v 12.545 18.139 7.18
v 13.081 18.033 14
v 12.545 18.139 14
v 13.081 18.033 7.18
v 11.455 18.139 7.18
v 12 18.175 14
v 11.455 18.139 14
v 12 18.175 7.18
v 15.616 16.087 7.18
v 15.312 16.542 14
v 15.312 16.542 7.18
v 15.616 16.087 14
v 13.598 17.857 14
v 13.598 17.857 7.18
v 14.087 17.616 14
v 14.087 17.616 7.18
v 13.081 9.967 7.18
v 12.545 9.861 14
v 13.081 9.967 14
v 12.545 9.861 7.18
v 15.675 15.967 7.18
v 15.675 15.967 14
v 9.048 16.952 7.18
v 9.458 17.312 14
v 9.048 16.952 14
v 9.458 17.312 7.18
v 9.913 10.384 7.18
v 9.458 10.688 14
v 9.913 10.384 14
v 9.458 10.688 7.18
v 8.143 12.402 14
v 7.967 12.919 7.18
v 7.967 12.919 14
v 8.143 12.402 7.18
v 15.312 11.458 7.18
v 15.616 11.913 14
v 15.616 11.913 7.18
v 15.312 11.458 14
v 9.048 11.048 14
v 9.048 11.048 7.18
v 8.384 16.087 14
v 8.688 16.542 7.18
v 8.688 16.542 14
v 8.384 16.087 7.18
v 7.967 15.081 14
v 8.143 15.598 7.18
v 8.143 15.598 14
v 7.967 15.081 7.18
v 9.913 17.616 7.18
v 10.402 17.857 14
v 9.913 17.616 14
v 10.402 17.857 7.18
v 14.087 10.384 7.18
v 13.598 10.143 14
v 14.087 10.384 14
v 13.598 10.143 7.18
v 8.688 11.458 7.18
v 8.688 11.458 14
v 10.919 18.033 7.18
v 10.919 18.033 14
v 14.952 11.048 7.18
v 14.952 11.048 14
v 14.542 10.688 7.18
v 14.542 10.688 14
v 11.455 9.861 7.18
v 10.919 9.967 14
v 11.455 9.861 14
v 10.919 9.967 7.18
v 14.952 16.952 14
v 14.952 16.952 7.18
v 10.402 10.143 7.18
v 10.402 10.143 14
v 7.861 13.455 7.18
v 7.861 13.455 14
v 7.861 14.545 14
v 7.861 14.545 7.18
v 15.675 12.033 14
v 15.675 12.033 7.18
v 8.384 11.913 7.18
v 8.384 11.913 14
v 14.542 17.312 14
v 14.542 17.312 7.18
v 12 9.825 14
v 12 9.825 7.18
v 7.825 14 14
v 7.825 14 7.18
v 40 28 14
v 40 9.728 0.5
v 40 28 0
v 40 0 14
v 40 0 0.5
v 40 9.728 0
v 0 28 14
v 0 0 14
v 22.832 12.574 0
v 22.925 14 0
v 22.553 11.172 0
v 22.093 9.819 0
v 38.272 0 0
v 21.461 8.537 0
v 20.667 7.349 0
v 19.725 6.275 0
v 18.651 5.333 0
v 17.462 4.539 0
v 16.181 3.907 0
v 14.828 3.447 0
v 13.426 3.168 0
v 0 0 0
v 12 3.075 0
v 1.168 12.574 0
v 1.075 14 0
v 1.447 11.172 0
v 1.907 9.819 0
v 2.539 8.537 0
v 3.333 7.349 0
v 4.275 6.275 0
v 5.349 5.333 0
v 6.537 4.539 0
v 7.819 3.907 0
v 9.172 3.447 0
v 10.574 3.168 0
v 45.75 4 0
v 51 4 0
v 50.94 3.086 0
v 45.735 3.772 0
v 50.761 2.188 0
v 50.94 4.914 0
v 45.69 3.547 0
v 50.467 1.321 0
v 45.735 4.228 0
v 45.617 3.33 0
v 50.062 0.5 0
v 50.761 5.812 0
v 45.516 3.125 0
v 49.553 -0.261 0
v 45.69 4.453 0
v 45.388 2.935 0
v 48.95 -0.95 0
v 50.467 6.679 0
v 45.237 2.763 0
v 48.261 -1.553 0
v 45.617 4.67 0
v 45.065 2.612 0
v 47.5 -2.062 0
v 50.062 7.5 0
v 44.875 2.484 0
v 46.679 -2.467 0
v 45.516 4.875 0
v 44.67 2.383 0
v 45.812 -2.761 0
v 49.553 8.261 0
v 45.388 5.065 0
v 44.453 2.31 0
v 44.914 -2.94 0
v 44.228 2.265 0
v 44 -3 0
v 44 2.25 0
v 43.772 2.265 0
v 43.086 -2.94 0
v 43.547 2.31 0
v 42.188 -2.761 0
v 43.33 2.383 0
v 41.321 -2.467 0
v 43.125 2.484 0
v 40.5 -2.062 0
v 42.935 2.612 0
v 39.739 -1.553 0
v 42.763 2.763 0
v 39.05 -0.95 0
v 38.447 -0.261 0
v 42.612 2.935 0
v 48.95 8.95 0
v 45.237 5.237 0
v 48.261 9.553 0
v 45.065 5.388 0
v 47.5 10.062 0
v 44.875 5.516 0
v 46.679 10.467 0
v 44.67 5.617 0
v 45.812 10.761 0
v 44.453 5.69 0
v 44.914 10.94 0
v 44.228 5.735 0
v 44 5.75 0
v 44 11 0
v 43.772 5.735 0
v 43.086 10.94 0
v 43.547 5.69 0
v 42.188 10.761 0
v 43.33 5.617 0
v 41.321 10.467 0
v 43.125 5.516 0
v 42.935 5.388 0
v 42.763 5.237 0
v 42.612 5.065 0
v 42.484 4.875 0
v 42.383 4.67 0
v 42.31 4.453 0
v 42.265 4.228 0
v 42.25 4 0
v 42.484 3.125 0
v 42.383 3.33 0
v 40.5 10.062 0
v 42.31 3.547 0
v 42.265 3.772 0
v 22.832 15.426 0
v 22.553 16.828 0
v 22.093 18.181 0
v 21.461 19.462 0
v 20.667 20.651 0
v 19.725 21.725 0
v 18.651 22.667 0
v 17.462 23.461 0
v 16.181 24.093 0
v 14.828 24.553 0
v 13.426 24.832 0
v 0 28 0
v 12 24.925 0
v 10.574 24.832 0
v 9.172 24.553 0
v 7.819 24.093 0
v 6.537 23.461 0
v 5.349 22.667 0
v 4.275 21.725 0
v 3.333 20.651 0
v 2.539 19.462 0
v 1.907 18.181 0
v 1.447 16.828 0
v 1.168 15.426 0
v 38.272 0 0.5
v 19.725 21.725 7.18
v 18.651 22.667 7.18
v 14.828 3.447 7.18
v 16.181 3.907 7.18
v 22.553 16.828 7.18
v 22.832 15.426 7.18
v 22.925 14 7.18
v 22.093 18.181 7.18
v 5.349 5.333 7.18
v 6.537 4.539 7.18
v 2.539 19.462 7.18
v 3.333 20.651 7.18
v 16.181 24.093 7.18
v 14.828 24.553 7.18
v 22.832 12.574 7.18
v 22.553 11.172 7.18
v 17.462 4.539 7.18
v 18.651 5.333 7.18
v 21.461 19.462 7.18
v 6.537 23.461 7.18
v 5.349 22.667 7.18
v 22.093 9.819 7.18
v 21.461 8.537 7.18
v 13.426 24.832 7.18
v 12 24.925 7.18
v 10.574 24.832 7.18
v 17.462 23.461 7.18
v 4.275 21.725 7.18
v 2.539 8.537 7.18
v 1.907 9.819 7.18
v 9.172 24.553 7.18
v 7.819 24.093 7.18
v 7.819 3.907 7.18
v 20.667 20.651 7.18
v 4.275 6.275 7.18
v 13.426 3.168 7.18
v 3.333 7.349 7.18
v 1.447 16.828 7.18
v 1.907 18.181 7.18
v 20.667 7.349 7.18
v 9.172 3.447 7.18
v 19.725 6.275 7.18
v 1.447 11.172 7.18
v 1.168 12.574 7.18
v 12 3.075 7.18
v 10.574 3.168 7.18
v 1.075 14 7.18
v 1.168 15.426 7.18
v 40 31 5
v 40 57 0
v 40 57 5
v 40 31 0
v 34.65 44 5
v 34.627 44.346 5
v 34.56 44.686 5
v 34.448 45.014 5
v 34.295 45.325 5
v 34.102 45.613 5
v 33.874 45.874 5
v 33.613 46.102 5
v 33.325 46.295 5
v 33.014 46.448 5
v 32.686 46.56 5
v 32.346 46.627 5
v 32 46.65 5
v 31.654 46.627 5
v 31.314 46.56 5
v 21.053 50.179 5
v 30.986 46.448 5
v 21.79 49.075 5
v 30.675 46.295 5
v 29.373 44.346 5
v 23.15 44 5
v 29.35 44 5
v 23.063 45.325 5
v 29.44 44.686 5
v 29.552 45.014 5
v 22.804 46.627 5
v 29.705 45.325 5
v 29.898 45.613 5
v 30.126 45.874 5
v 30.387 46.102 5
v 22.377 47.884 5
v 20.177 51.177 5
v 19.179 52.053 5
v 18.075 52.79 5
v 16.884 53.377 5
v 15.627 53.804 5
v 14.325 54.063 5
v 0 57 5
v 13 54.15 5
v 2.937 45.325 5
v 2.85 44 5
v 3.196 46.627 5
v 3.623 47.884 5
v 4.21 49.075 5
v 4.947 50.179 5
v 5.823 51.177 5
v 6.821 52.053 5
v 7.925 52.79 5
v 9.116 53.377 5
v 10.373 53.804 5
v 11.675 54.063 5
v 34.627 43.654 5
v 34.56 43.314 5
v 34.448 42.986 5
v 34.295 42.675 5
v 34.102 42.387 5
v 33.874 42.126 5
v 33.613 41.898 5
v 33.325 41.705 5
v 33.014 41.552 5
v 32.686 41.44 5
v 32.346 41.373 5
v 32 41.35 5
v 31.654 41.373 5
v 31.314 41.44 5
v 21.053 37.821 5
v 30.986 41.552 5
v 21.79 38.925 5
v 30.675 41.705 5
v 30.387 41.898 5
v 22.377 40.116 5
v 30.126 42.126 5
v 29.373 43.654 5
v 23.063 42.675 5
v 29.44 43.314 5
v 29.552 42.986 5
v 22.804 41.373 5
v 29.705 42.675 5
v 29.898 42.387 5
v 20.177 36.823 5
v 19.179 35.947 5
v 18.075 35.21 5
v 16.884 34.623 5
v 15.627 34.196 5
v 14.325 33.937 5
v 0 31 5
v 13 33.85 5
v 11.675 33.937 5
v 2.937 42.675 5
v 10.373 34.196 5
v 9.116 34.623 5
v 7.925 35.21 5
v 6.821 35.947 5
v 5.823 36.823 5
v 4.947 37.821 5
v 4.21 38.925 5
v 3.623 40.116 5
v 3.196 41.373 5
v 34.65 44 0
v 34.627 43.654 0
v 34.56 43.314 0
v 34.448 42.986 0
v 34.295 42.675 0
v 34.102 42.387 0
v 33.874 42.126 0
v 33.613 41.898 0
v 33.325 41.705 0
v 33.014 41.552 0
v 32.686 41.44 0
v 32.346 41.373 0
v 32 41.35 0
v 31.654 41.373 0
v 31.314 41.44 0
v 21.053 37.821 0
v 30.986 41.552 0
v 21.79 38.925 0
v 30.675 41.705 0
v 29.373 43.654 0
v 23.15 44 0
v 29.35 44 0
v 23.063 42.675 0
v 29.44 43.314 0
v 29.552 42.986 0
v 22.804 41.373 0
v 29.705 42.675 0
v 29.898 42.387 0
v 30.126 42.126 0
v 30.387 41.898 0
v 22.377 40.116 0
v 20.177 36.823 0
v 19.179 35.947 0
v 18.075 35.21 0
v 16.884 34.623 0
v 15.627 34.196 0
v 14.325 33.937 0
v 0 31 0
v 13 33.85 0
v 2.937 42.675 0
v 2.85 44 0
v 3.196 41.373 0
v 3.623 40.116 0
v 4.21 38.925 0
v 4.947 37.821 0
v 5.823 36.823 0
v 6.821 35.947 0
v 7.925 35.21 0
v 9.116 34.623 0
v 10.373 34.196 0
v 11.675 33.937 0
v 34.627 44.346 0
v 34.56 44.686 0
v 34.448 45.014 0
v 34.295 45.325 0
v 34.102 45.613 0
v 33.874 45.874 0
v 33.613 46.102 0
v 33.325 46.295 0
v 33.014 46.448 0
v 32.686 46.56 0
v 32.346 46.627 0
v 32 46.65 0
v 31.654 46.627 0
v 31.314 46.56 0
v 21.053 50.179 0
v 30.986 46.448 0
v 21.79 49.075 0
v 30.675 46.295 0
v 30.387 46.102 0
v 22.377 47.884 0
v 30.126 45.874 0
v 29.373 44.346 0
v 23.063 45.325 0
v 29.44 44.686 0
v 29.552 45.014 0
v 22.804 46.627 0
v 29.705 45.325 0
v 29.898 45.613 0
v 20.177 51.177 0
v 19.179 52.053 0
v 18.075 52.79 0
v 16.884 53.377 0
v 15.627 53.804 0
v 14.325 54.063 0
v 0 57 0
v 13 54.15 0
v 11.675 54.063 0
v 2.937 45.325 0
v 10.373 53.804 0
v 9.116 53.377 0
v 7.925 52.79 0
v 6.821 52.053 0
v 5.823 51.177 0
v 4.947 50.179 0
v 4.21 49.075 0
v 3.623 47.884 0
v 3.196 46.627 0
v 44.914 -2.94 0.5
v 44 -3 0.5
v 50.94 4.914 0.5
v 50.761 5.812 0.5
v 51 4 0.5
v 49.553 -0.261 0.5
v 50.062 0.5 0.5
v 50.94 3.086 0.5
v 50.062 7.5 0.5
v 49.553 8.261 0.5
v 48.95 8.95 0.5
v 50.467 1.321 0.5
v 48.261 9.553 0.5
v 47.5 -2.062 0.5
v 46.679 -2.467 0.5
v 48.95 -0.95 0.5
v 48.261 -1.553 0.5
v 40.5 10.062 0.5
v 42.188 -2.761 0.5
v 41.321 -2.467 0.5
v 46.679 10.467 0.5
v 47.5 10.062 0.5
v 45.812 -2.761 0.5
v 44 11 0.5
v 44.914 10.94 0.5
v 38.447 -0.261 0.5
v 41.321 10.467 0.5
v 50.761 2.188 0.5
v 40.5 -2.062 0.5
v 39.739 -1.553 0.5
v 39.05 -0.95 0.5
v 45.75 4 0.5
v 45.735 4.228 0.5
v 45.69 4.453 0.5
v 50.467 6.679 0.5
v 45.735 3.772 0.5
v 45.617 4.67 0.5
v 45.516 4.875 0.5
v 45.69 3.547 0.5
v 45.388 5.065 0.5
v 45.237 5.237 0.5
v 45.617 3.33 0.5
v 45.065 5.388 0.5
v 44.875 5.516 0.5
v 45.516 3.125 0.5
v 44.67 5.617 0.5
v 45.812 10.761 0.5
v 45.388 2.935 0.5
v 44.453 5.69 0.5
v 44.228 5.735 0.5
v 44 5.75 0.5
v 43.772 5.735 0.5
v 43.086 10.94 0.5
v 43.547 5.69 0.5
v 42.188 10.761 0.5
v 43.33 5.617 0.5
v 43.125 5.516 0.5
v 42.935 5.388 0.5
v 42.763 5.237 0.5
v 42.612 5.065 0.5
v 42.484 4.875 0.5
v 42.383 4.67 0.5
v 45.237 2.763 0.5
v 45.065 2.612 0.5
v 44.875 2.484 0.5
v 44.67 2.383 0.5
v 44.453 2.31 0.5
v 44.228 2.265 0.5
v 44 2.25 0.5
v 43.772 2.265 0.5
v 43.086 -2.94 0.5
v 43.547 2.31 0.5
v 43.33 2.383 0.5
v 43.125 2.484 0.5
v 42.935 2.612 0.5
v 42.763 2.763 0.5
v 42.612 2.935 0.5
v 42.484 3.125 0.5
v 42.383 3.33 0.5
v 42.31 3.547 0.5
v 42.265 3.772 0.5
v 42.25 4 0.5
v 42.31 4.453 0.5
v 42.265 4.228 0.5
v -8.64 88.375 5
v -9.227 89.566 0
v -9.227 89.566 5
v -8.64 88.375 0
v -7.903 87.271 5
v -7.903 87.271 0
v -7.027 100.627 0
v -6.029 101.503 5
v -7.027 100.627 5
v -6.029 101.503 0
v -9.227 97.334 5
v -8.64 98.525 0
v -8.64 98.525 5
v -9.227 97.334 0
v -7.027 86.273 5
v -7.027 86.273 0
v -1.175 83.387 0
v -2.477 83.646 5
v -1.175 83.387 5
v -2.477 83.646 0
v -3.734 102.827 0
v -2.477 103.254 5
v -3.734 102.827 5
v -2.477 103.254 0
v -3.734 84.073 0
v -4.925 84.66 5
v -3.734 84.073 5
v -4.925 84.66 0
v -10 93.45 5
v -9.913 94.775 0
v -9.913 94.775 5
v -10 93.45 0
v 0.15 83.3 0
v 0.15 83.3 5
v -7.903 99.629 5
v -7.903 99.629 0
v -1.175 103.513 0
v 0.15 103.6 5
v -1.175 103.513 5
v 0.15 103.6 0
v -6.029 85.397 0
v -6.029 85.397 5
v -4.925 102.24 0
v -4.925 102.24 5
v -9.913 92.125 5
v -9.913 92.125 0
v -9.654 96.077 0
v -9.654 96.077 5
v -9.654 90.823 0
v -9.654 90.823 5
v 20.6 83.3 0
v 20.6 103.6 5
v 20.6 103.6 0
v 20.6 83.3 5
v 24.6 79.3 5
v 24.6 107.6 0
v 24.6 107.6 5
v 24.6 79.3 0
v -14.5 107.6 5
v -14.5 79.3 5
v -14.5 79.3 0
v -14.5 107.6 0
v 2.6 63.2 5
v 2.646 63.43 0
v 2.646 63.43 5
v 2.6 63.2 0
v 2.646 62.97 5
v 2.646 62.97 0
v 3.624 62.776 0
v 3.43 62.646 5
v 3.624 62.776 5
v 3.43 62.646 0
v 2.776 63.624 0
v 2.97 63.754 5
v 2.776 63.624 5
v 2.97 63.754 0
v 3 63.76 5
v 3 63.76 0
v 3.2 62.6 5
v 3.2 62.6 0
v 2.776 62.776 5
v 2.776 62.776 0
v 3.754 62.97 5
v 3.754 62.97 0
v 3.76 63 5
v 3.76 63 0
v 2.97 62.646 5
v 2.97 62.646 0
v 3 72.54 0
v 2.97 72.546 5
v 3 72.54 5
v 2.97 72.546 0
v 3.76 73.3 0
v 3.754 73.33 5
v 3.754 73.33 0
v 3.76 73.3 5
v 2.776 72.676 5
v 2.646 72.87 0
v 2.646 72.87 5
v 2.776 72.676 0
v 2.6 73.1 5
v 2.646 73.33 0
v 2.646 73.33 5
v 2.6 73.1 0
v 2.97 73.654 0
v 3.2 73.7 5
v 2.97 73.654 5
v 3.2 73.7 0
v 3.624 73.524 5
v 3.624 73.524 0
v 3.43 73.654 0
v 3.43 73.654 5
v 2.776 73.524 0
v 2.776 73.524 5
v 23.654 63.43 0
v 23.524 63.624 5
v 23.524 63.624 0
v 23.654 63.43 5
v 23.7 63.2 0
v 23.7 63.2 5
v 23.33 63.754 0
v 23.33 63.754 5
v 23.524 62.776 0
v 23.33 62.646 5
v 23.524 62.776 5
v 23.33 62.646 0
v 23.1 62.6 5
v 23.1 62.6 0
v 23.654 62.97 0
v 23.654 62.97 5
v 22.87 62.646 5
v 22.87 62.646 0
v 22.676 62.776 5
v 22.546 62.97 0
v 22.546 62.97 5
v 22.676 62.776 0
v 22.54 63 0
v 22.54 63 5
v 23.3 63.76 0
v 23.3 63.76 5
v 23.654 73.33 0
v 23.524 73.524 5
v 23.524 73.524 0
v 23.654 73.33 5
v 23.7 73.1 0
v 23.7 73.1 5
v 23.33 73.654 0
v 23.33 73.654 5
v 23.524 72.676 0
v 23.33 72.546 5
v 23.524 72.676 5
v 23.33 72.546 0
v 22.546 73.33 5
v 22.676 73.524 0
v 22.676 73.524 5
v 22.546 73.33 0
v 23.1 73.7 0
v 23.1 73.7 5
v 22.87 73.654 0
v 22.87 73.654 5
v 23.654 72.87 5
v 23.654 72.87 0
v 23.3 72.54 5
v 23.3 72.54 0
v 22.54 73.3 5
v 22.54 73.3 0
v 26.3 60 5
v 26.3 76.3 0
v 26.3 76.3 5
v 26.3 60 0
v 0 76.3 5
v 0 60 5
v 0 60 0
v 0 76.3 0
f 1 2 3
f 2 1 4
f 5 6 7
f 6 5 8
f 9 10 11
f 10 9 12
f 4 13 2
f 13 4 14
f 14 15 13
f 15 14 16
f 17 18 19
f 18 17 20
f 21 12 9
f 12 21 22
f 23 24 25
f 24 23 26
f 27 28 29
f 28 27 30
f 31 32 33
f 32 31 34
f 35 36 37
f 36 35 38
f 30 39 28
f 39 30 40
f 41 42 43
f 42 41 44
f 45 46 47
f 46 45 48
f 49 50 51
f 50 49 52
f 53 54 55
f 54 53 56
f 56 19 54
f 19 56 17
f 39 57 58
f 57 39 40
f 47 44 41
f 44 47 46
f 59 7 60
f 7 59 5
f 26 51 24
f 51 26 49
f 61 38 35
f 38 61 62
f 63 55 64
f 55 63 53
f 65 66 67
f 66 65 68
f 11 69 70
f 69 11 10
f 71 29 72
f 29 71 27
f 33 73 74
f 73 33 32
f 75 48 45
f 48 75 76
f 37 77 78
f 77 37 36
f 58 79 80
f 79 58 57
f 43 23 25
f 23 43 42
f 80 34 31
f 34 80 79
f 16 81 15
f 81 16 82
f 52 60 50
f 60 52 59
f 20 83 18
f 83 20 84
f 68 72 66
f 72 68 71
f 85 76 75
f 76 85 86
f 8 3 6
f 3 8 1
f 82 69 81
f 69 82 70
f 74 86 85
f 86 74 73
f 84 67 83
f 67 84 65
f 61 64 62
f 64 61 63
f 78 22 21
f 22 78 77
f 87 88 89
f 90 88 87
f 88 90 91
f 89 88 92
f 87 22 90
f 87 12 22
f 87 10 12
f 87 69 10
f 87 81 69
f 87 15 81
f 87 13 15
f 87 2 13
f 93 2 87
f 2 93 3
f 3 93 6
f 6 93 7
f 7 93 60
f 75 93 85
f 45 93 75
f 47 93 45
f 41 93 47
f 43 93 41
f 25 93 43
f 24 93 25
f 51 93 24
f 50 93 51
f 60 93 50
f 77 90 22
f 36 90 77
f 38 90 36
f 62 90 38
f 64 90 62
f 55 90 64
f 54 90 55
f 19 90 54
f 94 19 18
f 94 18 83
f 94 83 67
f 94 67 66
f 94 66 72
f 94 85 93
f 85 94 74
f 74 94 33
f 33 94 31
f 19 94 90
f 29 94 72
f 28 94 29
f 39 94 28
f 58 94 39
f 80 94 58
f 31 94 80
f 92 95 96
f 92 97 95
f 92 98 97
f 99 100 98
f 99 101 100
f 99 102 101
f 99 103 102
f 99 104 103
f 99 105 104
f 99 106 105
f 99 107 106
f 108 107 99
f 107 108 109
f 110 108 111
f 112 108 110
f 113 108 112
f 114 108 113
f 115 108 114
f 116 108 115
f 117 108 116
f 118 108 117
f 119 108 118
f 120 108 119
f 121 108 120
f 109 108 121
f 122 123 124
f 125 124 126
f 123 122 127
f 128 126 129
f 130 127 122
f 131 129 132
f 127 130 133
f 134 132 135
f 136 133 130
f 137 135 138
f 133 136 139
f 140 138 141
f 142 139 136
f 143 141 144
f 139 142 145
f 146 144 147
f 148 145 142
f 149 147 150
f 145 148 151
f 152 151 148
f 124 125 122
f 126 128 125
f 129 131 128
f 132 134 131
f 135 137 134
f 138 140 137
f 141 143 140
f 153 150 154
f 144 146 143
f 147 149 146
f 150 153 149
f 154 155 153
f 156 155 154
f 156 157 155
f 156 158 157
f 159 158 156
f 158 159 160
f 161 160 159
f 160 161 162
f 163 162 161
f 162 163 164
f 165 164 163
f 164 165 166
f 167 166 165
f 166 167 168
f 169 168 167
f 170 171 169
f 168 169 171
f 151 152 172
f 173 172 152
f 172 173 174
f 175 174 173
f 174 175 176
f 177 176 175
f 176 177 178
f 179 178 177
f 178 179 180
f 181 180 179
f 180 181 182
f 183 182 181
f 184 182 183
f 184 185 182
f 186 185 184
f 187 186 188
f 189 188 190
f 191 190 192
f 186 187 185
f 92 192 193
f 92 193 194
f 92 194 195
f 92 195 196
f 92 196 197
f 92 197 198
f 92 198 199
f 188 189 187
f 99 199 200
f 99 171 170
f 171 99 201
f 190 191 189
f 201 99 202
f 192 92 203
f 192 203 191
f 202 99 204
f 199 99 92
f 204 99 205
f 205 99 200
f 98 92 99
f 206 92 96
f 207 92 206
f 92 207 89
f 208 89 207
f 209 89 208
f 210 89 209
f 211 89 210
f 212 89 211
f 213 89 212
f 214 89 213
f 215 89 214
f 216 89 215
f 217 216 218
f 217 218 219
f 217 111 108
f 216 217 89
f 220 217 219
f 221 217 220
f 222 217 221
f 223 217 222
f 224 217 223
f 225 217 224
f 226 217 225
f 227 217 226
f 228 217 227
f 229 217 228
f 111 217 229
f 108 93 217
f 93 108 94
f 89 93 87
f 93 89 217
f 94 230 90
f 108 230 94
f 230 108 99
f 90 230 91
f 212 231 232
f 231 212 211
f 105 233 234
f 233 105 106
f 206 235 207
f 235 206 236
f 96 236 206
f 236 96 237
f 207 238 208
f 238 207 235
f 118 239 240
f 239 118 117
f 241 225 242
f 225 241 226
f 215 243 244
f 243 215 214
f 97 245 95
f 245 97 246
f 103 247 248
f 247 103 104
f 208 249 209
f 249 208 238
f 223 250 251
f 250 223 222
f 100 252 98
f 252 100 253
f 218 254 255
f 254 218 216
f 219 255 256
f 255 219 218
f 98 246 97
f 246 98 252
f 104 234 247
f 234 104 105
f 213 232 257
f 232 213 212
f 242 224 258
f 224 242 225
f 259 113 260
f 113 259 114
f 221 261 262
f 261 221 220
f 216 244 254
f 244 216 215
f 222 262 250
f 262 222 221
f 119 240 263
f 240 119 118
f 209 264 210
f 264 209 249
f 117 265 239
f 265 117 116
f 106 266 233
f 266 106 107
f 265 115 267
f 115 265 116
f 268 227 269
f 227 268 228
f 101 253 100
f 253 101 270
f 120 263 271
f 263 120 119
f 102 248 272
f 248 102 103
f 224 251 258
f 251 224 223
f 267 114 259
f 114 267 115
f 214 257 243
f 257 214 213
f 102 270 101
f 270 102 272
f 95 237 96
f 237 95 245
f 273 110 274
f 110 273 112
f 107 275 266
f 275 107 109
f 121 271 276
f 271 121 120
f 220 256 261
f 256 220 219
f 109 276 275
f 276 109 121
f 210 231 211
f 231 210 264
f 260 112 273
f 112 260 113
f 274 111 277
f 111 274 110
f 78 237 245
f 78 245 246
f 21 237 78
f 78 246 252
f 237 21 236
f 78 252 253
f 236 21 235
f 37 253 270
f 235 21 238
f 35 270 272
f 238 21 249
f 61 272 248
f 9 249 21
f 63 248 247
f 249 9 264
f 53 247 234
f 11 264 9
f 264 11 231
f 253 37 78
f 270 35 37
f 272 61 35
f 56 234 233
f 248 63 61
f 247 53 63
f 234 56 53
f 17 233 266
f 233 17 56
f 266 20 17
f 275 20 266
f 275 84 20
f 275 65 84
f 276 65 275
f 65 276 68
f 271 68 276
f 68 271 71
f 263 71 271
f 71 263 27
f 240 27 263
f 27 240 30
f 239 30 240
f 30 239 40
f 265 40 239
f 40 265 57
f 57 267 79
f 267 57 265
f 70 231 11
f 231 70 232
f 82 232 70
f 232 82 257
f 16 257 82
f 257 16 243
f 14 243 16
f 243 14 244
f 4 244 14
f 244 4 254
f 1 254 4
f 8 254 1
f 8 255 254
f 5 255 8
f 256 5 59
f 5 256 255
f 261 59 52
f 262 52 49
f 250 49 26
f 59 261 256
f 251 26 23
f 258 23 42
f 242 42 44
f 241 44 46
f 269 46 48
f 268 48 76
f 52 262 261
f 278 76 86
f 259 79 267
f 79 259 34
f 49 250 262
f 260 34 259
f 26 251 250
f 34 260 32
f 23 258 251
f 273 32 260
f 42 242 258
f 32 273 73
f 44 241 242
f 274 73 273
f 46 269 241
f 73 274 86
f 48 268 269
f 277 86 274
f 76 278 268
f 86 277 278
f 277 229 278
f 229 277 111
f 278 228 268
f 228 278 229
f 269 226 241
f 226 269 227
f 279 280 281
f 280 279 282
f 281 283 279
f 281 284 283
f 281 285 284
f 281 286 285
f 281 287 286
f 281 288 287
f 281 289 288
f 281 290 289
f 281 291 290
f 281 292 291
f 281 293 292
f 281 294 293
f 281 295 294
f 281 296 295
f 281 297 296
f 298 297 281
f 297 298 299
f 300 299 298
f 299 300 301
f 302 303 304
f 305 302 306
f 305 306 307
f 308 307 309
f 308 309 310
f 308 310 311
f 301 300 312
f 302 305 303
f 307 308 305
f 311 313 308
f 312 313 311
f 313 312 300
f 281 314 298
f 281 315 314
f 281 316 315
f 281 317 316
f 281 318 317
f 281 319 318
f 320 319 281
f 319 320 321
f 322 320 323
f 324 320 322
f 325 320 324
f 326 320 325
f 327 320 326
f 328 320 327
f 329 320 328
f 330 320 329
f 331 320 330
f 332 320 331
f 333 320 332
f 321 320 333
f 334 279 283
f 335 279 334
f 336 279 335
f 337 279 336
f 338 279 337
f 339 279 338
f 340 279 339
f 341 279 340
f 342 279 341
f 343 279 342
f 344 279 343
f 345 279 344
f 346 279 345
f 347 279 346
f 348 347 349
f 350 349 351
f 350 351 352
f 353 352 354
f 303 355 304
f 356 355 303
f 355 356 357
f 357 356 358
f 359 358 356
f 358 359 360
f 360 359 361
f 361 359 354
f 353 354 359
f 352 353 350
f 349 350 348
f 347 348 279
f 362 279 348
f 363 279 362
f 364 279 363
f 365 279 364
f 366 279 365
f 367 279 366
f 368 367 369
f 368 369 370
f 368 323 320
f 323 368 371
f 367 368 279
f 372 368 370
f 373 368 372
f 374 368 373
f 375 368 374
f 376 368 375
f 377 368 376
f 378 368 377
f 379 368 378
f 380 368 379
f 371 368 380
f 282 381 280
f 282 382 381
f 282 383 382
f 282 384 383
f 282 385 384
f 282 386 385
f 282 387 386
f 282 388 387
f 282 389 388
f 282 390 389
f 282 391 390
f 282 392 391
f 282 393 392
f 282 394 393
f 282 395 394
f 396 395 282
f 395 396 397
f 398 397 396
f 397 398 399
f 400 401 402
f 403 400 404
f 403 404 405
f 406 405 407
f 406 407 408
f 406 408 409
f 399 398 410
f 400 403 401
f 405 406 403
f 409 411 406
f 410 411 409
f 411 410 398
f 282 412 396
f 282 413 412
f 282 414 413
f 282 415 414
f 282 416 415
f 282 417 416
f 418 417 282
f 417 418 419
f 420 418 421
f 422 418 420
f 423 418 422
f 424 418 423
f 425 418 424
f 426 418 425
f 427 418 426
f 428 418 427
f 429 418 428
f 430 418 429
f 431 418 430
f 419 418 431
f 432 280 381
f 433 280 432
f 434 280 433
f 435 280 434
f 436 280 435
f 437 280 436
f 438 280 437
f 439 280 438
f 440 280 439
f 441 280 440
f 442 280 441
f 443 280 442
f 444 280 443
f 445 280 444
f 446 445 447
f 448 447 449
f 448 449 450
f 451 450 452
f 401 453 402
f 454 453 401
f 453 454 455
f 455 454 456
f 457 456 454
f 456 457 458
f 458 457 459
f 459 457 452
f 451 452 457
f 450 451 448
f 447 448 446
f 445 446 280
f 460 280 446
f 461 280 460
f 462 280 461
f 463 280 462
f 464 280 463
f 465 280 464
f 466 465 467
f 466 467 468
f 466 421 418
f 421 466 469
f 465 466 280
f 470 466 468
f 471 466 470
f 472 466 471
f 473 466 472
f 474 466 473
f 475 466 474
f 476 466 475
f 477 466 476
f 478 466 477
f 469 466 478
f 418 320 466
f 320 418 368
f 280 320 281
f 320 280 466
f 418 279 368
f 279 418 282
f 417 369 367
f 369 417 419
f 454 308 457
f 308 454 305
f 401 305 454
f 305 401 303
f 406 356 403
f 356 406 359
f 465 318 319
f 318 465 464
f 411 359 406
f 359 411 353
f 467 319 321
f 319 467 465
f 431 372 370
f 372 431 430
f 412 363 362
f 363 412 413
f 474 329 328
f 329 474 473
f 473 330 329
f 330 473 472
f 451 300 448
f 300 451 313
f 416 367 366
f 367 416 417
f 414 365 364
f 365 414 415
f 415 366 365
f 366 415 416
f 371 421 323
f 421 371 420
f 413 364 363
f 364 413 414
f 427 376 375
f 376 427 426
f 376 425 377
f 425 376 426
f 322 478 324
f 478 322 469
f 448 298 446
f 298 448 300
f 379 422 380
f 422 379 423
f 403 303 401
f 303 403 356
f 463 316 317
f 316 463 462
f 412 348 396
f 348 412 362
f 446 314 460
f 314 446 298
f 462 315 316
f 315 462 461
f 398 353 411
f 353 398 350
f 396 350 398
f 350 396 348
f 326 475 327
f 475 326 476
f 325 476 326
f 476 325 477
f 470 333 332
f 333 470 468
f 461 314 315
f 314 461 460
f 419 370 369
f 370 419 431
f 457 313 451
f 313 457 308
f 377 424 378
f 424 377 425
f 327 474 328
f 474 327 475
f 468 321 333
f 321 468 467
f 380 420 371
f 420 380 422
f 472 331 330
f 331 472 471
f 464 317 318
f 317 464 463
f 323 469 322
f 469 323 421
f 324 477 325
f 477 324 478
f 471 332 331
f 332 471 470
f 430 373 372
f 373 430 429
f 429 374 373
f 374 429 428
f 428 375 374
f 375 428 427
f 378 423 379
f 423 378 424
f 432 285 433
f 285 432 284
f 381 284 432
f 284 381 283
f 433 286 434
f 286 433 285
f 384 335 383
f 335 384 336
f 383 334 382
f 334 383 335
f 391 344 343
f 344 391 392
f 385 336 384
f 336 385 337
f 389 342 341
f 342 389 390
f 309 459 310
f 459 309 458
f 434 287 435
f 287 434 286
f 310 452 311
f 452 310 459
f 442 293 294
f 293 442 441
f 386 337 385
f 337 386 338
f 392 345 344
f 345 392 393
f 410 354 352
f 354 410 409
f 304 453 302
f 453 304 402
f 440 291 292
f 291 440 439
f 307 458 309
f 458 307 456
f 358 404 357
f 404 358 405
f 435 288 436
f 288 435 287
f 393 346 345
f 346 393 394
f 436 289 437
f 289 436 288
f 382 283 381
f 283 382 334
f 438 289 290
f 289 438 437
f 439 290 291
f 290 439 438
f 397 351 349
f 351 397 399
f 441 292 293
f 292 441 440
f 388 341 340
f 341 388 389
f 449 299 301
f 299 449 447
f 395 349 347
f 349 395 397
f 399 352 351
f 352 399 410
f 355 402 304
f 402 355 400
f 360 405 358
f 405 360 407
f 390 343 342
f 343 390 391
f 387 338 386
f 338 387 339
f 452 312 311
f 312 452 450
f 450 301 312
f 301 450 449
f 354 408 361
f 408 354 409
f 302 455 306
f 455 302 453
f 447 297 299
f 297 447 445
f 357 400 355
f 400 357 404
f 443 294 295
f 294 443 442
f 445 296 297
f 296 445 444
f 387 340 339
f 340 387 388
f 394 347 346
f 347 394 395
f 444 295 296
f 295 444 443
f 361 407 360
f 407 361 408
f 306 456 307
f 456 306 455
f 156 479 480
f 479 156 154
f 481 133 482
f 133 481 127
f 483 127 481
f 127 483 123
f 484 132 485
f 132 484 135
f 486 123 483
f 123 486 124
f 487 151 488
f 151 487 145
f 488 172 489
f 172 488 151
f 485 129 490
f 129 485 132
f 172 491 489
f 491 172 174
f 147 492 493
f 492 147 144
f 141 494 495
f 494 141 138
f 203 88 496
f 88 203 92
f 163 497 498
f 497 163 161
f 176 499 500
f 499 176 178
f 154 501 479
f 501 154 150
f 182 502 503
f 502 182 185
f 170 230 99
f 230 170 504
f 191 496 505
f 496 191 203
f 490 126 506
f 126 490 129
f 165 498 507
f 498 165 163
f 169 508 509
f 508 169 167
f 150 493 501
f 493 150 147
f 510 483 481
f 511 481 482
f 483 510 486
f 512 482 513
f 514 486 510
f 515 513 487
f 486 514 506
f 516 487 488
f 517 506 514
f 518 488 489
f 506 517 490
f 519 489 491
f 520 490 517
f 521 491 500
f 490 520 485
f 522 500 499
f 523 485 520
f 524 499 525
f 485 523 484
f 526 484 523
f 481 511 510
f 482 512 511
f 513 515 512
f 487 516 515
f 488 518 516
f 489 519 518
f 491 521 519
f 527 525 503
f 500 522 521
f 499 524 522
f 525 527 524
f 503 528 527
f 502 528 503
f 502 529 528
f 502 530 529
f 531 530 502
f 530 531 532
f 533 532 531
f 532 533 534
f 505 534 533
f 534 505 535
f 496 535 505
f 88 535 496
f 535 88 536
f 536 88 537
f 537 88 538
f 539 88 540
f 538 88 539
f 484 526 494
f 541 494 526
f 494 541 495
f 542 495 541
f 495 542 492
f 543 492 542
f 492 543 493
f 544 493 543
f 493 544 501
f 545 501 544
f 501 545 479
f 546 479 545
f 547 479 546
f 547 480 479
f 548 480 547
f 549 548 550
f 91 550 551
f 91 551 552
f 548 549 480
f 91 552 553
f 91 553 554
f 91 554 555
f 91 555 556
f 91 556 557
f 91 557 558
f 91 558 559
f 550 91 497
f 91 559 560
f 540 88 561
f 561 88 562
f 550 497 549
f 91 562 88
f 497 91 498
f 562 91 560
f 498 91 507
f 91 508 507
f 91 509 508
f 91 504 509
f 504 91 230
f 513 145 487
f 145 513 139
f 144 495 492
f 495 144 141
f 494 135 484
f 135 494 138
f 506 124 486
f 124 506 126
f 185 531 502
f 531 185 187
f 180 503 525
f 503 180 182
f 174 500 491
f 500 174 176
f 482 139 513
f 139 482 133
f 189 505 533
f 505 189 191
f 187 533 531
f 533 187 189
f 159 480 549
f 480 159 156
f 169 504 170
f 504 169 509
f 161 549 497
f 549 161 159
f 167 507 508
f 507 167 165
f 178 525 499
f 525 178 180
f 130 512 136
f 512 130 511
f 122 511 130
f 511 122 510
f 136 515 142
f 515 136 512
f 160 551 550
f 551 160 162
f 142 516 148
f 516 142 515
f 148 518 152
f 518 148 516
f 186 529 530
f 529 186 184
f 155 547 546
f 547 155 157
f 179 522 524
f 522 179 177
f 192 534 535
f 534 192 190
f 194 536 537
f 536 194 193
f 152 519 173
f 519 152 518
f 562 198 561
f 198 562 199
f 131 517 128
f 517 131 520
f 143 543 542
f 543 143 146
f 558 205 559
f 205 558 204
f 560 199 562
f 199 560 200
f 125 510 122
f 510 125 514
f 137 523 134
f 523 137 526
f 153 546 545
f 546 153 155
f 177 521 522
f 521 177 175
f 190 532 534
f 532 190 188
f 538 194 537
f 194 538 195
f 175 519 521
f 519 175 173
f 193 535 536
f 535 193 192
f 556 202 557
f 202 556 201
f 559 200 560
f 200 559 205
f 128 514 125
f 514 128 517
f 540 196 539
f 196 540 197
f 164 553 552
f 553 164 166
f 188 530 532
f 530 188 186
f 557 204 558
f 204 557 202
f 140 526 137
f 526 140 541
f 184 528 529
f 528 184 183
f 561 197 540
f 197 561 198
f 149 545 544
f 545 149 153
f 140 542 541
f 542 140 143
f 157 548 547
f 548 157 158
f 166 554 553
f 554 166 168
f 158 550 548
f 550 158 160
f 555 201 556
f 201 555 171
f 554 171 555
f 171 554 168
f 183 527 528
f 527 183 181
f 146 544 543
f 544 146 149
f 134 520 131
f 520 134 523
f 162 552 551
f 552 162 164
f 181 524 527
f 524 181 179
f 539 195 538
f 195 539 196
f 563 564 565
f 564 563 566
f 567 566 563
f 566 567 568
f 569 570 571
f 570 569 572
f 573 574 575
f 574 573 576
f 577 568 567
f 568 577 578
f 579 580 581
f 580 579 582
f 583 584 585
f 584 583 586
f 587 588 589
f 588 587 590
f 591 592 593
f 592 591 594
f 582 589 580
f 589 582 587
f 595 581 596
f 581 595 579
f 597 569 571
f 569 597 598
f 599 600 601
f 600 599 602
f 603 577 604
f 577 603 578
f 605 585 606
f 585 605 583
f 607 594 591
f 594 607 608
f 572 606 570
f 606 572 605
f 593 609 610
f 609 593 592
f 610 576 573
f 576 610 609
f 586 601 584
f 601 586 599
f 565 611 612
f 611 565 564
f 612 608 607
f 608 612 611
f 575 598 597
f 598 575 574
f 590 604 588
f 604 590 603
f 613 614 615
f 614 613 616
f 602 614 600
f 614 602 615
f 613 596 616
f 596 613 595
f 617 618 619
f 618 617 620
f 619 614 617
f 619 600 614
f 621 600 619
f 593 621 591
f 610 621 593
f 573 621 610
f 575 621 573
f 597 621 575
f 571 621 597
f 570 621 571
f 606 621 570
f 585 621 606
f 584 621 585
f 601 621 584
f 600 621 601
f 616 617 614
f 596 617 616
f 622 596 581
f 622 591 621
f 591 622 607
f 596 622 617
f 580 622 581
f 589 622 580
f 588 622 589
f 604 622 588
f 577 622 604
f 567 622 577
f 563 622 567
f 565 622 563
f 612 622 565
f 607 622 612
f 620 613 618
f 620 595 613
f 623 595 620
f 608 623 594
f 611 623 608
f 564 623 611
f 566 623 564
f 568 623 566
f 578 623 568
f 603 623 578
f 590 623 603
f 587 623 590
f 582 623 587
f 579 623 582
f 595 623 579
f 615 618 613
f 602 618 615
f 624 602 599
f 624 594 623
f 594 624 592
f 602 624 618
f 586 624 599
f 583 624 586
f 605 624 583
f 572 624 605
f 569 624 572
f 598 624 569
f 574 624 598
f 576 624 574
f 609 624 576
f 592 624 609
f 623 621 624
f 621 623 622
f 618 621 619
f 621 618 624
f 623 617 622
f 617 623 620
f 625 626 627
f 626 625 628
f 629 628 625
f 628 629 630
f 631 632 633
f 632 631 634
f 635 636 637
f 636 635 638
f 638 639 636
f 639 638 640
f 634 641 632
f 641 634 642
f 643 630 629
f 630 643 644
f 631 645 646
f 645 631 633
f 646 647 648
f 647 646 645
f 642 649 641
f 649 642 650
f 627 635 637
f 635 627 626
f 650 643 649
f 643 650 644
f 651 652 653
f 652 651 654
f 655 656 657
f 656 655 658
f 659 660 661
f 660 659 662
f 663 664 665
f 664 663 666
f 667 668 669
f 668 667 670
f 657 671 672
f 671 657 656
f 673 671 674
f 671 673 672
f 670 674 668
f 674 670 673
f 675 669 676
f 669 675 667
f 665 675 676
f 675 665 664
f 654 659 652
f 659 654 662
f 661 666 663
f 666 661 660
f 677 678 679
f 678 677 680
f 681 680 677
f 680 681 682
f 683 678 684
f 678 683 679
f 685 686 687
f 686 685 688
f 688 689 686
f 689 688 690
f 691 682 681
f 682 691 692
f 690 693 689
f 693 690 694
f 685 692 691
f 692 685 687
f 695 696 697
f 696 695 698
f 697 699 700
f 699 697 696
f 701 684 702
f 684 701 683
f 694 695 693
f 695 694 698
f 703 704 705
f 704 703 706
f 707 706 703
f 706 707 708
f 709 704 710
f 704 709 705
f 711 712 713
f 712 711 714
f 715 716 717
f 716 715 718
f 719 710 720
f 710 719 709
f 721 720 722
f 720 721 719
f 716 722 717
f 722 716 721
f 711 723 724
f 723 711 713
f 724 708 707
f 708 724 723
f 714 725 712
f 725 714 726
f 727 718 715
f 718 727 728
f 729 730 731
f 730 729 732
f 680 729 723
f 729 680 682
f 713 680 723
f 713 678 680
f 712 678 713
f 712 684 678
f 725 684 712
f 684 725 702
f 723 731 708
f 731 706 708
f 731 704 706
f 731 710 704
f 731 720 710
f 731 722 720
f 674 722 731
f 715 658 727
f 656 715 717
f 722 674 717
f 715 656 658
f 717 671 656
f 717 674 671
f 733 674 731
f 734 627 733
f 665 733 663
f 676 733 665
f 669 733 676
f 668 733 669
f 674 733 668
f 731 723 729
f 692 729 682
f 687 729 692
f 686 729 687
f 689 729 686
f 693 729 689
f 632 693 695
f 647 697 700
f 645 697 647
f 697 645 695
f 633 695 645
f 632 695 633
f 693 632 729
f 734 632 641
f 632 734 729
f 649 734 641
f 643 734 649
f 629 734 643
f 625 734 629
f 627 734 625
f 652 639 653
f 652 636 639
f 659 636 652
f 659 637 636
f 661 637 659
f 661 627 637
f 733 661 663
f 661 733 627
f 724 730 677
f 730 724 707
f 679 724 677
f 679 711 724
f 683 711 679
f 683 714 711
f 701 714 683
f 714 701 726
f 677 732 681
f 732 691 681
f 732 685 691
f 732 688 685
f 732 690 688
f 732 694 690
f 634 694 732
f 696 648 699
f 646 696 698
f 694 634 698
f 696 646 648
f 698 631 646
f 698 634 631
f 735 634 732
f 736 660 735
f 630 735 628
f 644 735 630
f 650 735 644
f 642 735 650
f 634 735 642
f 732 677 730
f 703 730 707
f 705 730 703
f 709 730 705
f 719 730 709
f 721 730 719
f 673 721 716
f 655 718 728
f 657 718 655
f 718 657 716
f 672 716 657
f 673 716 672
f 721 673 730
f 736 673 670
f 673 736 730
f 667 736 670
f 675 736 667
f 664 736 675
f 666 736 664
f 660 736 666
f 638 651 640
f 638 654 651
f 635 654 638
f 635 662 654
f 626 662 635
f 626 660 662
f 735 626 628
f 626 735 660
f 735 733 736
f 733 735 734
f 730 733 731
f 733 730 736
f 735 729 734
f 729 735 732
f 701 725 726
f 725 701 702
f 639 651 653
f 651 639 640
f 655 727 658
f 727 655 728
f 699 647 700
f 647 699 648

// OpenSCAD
// Gen-CP — fit coupon: O20/O5 THROUGH pockets at carrier thickness (test on a steel offcut), 608 seat,
// D-flat bore, gap shim, and one bobbin-bay slice (bobbin footprint + bay_clear) to test former fit.
include <parameters.scad>;
$fn = 48;
// D-flat keyed bore: flat faces +X (angle 0 = magnet pocket 0 = index notch)
module dflat_bore(h) {
    intersection() {
        cylinder(d=shaft_bore, h=h);
        translate([-shaft_bore, -shaft_bore, 0]) cube([shaft_bore + dflat_x, 2*shaft_bore, h]);
    }
}
module sector_2d(r_in, r_out, ang) {
    polygon([
        for (a = [-ang/2 : ang/24 : ang/2]) [r_in*cos(a), r_in*sin(a)],
        for (a = [ang/2 : -ang/24 : -ang/2]) [r_out*cos(a), r_out*sin(a)]
    ]);
}
module footprint_2d() { offset(r=wall) sector_2d(coil_id_r, coil_od_r, span_deg); }
module hub_2d()       { offset(delta=-coil_core_inset) sector_2d(coil_id_r, coil_od_r, span_deg); }

block_w = 40; block_d = 28; block_h = 14;
difference() {
    cube([block_w, block_d, block_h]);
    translate([12, block_d/2, -0.02]) cylinder(d=bearing_d, h=bearing_h);
    translate([12, block_d/2, -0.1]) dflat_bore(block_h + 1);
}
translate([0, block_d + 3, 0]) difference() {
    cube([40, 26, carrier_thick]);
    translate([13, 13, -0.1]) cylinder(d=large_pocket_d, h=carrier_thick + 0.2);
    translate([32, 13, -0.1]) cylinder(d=small_pocket_d, h=carrier_thick + 0.2);
}
translate([block_w + 4, 4, 0])
    difference() {
        cylinder(d=spacer_pad_od, h=gap_spacer_h);
        translate([0, 0, -0.1]) cylinder(d=spacer_pad_id, h=gap_spacer_h + 0.2);
    }
// KEYHOLE pole pocket test (2026-10-18): O20 disc pocket + N42 20x10x5 block pocket merged (hull), as on the arcs.
// Drop a disc and a block in: they must push each other onto the two far walls and sit flat. Block pocket has corner reliefs.
translate([0, block_d + 3 + 26 + 3 + block_radial + block_pocket_clear + 6 + 3 + max(block_tangential, large_pocket_d) / 2 + 4, 0]) difference() {
    translate([-14.5, -(max(block_tangential, large_pocket_d) / 2 + 4), 0]) cube([14.5 + abs(block_R_list[0] - R_large) + block_radial / 2 + 4, max(block_tangential, large_pocket_d) + 8, carrier_thick]);
    translate([0, 0, -0.1]) {
        translate([disc_pocket_shift * sign(block_R_list[0] - R_large), 0, 0]) cylinder(d=large_pocket_d, h=carrier_thick + 0.2);
        translate([disc_pocket_shift * sign(block_R_list[0] - R_large), -(block_tangential + block_pocket_clear)/2, 0])
            cube([abs(block_R_list[0] - R_large) - abs(block_pocket_shift) + (block_radial + block_pocket_clear)/2 - disc_pocket_shift * sign(block_R_list[0] - R_large), block_tangential + block_pocket_clear, carrier_thick + 0.2]);
    }
}
// N42 20x10x5 BLOCK through-pocket test (block + block_pocket_clear, 1.2 mm corner reliefs), 2026-10-16
translate([0, block_d + 3 + 26 + 3, 0]) difference() {
    cube([block_tangential + block_pocket_clear + 6, block_radial + block_pocket_clear + 6, carrier_thick]);
    translate([3, 3, -0.1]) cube([block_tangential + block_pocket_clear, block_radial + block_pocket_clear, carrier_thick + 0.2]);
    for (x = [3.2, 3 + block_tangential + block_pocket_clear - 0.2], y = [3.2, 3 + block_radial + block_pocket_clear - 0.2])
        translate([x, y, -0.1]) cylinder(d=1.2, h=carrier_thick + 0.2, $fn=16);
}
